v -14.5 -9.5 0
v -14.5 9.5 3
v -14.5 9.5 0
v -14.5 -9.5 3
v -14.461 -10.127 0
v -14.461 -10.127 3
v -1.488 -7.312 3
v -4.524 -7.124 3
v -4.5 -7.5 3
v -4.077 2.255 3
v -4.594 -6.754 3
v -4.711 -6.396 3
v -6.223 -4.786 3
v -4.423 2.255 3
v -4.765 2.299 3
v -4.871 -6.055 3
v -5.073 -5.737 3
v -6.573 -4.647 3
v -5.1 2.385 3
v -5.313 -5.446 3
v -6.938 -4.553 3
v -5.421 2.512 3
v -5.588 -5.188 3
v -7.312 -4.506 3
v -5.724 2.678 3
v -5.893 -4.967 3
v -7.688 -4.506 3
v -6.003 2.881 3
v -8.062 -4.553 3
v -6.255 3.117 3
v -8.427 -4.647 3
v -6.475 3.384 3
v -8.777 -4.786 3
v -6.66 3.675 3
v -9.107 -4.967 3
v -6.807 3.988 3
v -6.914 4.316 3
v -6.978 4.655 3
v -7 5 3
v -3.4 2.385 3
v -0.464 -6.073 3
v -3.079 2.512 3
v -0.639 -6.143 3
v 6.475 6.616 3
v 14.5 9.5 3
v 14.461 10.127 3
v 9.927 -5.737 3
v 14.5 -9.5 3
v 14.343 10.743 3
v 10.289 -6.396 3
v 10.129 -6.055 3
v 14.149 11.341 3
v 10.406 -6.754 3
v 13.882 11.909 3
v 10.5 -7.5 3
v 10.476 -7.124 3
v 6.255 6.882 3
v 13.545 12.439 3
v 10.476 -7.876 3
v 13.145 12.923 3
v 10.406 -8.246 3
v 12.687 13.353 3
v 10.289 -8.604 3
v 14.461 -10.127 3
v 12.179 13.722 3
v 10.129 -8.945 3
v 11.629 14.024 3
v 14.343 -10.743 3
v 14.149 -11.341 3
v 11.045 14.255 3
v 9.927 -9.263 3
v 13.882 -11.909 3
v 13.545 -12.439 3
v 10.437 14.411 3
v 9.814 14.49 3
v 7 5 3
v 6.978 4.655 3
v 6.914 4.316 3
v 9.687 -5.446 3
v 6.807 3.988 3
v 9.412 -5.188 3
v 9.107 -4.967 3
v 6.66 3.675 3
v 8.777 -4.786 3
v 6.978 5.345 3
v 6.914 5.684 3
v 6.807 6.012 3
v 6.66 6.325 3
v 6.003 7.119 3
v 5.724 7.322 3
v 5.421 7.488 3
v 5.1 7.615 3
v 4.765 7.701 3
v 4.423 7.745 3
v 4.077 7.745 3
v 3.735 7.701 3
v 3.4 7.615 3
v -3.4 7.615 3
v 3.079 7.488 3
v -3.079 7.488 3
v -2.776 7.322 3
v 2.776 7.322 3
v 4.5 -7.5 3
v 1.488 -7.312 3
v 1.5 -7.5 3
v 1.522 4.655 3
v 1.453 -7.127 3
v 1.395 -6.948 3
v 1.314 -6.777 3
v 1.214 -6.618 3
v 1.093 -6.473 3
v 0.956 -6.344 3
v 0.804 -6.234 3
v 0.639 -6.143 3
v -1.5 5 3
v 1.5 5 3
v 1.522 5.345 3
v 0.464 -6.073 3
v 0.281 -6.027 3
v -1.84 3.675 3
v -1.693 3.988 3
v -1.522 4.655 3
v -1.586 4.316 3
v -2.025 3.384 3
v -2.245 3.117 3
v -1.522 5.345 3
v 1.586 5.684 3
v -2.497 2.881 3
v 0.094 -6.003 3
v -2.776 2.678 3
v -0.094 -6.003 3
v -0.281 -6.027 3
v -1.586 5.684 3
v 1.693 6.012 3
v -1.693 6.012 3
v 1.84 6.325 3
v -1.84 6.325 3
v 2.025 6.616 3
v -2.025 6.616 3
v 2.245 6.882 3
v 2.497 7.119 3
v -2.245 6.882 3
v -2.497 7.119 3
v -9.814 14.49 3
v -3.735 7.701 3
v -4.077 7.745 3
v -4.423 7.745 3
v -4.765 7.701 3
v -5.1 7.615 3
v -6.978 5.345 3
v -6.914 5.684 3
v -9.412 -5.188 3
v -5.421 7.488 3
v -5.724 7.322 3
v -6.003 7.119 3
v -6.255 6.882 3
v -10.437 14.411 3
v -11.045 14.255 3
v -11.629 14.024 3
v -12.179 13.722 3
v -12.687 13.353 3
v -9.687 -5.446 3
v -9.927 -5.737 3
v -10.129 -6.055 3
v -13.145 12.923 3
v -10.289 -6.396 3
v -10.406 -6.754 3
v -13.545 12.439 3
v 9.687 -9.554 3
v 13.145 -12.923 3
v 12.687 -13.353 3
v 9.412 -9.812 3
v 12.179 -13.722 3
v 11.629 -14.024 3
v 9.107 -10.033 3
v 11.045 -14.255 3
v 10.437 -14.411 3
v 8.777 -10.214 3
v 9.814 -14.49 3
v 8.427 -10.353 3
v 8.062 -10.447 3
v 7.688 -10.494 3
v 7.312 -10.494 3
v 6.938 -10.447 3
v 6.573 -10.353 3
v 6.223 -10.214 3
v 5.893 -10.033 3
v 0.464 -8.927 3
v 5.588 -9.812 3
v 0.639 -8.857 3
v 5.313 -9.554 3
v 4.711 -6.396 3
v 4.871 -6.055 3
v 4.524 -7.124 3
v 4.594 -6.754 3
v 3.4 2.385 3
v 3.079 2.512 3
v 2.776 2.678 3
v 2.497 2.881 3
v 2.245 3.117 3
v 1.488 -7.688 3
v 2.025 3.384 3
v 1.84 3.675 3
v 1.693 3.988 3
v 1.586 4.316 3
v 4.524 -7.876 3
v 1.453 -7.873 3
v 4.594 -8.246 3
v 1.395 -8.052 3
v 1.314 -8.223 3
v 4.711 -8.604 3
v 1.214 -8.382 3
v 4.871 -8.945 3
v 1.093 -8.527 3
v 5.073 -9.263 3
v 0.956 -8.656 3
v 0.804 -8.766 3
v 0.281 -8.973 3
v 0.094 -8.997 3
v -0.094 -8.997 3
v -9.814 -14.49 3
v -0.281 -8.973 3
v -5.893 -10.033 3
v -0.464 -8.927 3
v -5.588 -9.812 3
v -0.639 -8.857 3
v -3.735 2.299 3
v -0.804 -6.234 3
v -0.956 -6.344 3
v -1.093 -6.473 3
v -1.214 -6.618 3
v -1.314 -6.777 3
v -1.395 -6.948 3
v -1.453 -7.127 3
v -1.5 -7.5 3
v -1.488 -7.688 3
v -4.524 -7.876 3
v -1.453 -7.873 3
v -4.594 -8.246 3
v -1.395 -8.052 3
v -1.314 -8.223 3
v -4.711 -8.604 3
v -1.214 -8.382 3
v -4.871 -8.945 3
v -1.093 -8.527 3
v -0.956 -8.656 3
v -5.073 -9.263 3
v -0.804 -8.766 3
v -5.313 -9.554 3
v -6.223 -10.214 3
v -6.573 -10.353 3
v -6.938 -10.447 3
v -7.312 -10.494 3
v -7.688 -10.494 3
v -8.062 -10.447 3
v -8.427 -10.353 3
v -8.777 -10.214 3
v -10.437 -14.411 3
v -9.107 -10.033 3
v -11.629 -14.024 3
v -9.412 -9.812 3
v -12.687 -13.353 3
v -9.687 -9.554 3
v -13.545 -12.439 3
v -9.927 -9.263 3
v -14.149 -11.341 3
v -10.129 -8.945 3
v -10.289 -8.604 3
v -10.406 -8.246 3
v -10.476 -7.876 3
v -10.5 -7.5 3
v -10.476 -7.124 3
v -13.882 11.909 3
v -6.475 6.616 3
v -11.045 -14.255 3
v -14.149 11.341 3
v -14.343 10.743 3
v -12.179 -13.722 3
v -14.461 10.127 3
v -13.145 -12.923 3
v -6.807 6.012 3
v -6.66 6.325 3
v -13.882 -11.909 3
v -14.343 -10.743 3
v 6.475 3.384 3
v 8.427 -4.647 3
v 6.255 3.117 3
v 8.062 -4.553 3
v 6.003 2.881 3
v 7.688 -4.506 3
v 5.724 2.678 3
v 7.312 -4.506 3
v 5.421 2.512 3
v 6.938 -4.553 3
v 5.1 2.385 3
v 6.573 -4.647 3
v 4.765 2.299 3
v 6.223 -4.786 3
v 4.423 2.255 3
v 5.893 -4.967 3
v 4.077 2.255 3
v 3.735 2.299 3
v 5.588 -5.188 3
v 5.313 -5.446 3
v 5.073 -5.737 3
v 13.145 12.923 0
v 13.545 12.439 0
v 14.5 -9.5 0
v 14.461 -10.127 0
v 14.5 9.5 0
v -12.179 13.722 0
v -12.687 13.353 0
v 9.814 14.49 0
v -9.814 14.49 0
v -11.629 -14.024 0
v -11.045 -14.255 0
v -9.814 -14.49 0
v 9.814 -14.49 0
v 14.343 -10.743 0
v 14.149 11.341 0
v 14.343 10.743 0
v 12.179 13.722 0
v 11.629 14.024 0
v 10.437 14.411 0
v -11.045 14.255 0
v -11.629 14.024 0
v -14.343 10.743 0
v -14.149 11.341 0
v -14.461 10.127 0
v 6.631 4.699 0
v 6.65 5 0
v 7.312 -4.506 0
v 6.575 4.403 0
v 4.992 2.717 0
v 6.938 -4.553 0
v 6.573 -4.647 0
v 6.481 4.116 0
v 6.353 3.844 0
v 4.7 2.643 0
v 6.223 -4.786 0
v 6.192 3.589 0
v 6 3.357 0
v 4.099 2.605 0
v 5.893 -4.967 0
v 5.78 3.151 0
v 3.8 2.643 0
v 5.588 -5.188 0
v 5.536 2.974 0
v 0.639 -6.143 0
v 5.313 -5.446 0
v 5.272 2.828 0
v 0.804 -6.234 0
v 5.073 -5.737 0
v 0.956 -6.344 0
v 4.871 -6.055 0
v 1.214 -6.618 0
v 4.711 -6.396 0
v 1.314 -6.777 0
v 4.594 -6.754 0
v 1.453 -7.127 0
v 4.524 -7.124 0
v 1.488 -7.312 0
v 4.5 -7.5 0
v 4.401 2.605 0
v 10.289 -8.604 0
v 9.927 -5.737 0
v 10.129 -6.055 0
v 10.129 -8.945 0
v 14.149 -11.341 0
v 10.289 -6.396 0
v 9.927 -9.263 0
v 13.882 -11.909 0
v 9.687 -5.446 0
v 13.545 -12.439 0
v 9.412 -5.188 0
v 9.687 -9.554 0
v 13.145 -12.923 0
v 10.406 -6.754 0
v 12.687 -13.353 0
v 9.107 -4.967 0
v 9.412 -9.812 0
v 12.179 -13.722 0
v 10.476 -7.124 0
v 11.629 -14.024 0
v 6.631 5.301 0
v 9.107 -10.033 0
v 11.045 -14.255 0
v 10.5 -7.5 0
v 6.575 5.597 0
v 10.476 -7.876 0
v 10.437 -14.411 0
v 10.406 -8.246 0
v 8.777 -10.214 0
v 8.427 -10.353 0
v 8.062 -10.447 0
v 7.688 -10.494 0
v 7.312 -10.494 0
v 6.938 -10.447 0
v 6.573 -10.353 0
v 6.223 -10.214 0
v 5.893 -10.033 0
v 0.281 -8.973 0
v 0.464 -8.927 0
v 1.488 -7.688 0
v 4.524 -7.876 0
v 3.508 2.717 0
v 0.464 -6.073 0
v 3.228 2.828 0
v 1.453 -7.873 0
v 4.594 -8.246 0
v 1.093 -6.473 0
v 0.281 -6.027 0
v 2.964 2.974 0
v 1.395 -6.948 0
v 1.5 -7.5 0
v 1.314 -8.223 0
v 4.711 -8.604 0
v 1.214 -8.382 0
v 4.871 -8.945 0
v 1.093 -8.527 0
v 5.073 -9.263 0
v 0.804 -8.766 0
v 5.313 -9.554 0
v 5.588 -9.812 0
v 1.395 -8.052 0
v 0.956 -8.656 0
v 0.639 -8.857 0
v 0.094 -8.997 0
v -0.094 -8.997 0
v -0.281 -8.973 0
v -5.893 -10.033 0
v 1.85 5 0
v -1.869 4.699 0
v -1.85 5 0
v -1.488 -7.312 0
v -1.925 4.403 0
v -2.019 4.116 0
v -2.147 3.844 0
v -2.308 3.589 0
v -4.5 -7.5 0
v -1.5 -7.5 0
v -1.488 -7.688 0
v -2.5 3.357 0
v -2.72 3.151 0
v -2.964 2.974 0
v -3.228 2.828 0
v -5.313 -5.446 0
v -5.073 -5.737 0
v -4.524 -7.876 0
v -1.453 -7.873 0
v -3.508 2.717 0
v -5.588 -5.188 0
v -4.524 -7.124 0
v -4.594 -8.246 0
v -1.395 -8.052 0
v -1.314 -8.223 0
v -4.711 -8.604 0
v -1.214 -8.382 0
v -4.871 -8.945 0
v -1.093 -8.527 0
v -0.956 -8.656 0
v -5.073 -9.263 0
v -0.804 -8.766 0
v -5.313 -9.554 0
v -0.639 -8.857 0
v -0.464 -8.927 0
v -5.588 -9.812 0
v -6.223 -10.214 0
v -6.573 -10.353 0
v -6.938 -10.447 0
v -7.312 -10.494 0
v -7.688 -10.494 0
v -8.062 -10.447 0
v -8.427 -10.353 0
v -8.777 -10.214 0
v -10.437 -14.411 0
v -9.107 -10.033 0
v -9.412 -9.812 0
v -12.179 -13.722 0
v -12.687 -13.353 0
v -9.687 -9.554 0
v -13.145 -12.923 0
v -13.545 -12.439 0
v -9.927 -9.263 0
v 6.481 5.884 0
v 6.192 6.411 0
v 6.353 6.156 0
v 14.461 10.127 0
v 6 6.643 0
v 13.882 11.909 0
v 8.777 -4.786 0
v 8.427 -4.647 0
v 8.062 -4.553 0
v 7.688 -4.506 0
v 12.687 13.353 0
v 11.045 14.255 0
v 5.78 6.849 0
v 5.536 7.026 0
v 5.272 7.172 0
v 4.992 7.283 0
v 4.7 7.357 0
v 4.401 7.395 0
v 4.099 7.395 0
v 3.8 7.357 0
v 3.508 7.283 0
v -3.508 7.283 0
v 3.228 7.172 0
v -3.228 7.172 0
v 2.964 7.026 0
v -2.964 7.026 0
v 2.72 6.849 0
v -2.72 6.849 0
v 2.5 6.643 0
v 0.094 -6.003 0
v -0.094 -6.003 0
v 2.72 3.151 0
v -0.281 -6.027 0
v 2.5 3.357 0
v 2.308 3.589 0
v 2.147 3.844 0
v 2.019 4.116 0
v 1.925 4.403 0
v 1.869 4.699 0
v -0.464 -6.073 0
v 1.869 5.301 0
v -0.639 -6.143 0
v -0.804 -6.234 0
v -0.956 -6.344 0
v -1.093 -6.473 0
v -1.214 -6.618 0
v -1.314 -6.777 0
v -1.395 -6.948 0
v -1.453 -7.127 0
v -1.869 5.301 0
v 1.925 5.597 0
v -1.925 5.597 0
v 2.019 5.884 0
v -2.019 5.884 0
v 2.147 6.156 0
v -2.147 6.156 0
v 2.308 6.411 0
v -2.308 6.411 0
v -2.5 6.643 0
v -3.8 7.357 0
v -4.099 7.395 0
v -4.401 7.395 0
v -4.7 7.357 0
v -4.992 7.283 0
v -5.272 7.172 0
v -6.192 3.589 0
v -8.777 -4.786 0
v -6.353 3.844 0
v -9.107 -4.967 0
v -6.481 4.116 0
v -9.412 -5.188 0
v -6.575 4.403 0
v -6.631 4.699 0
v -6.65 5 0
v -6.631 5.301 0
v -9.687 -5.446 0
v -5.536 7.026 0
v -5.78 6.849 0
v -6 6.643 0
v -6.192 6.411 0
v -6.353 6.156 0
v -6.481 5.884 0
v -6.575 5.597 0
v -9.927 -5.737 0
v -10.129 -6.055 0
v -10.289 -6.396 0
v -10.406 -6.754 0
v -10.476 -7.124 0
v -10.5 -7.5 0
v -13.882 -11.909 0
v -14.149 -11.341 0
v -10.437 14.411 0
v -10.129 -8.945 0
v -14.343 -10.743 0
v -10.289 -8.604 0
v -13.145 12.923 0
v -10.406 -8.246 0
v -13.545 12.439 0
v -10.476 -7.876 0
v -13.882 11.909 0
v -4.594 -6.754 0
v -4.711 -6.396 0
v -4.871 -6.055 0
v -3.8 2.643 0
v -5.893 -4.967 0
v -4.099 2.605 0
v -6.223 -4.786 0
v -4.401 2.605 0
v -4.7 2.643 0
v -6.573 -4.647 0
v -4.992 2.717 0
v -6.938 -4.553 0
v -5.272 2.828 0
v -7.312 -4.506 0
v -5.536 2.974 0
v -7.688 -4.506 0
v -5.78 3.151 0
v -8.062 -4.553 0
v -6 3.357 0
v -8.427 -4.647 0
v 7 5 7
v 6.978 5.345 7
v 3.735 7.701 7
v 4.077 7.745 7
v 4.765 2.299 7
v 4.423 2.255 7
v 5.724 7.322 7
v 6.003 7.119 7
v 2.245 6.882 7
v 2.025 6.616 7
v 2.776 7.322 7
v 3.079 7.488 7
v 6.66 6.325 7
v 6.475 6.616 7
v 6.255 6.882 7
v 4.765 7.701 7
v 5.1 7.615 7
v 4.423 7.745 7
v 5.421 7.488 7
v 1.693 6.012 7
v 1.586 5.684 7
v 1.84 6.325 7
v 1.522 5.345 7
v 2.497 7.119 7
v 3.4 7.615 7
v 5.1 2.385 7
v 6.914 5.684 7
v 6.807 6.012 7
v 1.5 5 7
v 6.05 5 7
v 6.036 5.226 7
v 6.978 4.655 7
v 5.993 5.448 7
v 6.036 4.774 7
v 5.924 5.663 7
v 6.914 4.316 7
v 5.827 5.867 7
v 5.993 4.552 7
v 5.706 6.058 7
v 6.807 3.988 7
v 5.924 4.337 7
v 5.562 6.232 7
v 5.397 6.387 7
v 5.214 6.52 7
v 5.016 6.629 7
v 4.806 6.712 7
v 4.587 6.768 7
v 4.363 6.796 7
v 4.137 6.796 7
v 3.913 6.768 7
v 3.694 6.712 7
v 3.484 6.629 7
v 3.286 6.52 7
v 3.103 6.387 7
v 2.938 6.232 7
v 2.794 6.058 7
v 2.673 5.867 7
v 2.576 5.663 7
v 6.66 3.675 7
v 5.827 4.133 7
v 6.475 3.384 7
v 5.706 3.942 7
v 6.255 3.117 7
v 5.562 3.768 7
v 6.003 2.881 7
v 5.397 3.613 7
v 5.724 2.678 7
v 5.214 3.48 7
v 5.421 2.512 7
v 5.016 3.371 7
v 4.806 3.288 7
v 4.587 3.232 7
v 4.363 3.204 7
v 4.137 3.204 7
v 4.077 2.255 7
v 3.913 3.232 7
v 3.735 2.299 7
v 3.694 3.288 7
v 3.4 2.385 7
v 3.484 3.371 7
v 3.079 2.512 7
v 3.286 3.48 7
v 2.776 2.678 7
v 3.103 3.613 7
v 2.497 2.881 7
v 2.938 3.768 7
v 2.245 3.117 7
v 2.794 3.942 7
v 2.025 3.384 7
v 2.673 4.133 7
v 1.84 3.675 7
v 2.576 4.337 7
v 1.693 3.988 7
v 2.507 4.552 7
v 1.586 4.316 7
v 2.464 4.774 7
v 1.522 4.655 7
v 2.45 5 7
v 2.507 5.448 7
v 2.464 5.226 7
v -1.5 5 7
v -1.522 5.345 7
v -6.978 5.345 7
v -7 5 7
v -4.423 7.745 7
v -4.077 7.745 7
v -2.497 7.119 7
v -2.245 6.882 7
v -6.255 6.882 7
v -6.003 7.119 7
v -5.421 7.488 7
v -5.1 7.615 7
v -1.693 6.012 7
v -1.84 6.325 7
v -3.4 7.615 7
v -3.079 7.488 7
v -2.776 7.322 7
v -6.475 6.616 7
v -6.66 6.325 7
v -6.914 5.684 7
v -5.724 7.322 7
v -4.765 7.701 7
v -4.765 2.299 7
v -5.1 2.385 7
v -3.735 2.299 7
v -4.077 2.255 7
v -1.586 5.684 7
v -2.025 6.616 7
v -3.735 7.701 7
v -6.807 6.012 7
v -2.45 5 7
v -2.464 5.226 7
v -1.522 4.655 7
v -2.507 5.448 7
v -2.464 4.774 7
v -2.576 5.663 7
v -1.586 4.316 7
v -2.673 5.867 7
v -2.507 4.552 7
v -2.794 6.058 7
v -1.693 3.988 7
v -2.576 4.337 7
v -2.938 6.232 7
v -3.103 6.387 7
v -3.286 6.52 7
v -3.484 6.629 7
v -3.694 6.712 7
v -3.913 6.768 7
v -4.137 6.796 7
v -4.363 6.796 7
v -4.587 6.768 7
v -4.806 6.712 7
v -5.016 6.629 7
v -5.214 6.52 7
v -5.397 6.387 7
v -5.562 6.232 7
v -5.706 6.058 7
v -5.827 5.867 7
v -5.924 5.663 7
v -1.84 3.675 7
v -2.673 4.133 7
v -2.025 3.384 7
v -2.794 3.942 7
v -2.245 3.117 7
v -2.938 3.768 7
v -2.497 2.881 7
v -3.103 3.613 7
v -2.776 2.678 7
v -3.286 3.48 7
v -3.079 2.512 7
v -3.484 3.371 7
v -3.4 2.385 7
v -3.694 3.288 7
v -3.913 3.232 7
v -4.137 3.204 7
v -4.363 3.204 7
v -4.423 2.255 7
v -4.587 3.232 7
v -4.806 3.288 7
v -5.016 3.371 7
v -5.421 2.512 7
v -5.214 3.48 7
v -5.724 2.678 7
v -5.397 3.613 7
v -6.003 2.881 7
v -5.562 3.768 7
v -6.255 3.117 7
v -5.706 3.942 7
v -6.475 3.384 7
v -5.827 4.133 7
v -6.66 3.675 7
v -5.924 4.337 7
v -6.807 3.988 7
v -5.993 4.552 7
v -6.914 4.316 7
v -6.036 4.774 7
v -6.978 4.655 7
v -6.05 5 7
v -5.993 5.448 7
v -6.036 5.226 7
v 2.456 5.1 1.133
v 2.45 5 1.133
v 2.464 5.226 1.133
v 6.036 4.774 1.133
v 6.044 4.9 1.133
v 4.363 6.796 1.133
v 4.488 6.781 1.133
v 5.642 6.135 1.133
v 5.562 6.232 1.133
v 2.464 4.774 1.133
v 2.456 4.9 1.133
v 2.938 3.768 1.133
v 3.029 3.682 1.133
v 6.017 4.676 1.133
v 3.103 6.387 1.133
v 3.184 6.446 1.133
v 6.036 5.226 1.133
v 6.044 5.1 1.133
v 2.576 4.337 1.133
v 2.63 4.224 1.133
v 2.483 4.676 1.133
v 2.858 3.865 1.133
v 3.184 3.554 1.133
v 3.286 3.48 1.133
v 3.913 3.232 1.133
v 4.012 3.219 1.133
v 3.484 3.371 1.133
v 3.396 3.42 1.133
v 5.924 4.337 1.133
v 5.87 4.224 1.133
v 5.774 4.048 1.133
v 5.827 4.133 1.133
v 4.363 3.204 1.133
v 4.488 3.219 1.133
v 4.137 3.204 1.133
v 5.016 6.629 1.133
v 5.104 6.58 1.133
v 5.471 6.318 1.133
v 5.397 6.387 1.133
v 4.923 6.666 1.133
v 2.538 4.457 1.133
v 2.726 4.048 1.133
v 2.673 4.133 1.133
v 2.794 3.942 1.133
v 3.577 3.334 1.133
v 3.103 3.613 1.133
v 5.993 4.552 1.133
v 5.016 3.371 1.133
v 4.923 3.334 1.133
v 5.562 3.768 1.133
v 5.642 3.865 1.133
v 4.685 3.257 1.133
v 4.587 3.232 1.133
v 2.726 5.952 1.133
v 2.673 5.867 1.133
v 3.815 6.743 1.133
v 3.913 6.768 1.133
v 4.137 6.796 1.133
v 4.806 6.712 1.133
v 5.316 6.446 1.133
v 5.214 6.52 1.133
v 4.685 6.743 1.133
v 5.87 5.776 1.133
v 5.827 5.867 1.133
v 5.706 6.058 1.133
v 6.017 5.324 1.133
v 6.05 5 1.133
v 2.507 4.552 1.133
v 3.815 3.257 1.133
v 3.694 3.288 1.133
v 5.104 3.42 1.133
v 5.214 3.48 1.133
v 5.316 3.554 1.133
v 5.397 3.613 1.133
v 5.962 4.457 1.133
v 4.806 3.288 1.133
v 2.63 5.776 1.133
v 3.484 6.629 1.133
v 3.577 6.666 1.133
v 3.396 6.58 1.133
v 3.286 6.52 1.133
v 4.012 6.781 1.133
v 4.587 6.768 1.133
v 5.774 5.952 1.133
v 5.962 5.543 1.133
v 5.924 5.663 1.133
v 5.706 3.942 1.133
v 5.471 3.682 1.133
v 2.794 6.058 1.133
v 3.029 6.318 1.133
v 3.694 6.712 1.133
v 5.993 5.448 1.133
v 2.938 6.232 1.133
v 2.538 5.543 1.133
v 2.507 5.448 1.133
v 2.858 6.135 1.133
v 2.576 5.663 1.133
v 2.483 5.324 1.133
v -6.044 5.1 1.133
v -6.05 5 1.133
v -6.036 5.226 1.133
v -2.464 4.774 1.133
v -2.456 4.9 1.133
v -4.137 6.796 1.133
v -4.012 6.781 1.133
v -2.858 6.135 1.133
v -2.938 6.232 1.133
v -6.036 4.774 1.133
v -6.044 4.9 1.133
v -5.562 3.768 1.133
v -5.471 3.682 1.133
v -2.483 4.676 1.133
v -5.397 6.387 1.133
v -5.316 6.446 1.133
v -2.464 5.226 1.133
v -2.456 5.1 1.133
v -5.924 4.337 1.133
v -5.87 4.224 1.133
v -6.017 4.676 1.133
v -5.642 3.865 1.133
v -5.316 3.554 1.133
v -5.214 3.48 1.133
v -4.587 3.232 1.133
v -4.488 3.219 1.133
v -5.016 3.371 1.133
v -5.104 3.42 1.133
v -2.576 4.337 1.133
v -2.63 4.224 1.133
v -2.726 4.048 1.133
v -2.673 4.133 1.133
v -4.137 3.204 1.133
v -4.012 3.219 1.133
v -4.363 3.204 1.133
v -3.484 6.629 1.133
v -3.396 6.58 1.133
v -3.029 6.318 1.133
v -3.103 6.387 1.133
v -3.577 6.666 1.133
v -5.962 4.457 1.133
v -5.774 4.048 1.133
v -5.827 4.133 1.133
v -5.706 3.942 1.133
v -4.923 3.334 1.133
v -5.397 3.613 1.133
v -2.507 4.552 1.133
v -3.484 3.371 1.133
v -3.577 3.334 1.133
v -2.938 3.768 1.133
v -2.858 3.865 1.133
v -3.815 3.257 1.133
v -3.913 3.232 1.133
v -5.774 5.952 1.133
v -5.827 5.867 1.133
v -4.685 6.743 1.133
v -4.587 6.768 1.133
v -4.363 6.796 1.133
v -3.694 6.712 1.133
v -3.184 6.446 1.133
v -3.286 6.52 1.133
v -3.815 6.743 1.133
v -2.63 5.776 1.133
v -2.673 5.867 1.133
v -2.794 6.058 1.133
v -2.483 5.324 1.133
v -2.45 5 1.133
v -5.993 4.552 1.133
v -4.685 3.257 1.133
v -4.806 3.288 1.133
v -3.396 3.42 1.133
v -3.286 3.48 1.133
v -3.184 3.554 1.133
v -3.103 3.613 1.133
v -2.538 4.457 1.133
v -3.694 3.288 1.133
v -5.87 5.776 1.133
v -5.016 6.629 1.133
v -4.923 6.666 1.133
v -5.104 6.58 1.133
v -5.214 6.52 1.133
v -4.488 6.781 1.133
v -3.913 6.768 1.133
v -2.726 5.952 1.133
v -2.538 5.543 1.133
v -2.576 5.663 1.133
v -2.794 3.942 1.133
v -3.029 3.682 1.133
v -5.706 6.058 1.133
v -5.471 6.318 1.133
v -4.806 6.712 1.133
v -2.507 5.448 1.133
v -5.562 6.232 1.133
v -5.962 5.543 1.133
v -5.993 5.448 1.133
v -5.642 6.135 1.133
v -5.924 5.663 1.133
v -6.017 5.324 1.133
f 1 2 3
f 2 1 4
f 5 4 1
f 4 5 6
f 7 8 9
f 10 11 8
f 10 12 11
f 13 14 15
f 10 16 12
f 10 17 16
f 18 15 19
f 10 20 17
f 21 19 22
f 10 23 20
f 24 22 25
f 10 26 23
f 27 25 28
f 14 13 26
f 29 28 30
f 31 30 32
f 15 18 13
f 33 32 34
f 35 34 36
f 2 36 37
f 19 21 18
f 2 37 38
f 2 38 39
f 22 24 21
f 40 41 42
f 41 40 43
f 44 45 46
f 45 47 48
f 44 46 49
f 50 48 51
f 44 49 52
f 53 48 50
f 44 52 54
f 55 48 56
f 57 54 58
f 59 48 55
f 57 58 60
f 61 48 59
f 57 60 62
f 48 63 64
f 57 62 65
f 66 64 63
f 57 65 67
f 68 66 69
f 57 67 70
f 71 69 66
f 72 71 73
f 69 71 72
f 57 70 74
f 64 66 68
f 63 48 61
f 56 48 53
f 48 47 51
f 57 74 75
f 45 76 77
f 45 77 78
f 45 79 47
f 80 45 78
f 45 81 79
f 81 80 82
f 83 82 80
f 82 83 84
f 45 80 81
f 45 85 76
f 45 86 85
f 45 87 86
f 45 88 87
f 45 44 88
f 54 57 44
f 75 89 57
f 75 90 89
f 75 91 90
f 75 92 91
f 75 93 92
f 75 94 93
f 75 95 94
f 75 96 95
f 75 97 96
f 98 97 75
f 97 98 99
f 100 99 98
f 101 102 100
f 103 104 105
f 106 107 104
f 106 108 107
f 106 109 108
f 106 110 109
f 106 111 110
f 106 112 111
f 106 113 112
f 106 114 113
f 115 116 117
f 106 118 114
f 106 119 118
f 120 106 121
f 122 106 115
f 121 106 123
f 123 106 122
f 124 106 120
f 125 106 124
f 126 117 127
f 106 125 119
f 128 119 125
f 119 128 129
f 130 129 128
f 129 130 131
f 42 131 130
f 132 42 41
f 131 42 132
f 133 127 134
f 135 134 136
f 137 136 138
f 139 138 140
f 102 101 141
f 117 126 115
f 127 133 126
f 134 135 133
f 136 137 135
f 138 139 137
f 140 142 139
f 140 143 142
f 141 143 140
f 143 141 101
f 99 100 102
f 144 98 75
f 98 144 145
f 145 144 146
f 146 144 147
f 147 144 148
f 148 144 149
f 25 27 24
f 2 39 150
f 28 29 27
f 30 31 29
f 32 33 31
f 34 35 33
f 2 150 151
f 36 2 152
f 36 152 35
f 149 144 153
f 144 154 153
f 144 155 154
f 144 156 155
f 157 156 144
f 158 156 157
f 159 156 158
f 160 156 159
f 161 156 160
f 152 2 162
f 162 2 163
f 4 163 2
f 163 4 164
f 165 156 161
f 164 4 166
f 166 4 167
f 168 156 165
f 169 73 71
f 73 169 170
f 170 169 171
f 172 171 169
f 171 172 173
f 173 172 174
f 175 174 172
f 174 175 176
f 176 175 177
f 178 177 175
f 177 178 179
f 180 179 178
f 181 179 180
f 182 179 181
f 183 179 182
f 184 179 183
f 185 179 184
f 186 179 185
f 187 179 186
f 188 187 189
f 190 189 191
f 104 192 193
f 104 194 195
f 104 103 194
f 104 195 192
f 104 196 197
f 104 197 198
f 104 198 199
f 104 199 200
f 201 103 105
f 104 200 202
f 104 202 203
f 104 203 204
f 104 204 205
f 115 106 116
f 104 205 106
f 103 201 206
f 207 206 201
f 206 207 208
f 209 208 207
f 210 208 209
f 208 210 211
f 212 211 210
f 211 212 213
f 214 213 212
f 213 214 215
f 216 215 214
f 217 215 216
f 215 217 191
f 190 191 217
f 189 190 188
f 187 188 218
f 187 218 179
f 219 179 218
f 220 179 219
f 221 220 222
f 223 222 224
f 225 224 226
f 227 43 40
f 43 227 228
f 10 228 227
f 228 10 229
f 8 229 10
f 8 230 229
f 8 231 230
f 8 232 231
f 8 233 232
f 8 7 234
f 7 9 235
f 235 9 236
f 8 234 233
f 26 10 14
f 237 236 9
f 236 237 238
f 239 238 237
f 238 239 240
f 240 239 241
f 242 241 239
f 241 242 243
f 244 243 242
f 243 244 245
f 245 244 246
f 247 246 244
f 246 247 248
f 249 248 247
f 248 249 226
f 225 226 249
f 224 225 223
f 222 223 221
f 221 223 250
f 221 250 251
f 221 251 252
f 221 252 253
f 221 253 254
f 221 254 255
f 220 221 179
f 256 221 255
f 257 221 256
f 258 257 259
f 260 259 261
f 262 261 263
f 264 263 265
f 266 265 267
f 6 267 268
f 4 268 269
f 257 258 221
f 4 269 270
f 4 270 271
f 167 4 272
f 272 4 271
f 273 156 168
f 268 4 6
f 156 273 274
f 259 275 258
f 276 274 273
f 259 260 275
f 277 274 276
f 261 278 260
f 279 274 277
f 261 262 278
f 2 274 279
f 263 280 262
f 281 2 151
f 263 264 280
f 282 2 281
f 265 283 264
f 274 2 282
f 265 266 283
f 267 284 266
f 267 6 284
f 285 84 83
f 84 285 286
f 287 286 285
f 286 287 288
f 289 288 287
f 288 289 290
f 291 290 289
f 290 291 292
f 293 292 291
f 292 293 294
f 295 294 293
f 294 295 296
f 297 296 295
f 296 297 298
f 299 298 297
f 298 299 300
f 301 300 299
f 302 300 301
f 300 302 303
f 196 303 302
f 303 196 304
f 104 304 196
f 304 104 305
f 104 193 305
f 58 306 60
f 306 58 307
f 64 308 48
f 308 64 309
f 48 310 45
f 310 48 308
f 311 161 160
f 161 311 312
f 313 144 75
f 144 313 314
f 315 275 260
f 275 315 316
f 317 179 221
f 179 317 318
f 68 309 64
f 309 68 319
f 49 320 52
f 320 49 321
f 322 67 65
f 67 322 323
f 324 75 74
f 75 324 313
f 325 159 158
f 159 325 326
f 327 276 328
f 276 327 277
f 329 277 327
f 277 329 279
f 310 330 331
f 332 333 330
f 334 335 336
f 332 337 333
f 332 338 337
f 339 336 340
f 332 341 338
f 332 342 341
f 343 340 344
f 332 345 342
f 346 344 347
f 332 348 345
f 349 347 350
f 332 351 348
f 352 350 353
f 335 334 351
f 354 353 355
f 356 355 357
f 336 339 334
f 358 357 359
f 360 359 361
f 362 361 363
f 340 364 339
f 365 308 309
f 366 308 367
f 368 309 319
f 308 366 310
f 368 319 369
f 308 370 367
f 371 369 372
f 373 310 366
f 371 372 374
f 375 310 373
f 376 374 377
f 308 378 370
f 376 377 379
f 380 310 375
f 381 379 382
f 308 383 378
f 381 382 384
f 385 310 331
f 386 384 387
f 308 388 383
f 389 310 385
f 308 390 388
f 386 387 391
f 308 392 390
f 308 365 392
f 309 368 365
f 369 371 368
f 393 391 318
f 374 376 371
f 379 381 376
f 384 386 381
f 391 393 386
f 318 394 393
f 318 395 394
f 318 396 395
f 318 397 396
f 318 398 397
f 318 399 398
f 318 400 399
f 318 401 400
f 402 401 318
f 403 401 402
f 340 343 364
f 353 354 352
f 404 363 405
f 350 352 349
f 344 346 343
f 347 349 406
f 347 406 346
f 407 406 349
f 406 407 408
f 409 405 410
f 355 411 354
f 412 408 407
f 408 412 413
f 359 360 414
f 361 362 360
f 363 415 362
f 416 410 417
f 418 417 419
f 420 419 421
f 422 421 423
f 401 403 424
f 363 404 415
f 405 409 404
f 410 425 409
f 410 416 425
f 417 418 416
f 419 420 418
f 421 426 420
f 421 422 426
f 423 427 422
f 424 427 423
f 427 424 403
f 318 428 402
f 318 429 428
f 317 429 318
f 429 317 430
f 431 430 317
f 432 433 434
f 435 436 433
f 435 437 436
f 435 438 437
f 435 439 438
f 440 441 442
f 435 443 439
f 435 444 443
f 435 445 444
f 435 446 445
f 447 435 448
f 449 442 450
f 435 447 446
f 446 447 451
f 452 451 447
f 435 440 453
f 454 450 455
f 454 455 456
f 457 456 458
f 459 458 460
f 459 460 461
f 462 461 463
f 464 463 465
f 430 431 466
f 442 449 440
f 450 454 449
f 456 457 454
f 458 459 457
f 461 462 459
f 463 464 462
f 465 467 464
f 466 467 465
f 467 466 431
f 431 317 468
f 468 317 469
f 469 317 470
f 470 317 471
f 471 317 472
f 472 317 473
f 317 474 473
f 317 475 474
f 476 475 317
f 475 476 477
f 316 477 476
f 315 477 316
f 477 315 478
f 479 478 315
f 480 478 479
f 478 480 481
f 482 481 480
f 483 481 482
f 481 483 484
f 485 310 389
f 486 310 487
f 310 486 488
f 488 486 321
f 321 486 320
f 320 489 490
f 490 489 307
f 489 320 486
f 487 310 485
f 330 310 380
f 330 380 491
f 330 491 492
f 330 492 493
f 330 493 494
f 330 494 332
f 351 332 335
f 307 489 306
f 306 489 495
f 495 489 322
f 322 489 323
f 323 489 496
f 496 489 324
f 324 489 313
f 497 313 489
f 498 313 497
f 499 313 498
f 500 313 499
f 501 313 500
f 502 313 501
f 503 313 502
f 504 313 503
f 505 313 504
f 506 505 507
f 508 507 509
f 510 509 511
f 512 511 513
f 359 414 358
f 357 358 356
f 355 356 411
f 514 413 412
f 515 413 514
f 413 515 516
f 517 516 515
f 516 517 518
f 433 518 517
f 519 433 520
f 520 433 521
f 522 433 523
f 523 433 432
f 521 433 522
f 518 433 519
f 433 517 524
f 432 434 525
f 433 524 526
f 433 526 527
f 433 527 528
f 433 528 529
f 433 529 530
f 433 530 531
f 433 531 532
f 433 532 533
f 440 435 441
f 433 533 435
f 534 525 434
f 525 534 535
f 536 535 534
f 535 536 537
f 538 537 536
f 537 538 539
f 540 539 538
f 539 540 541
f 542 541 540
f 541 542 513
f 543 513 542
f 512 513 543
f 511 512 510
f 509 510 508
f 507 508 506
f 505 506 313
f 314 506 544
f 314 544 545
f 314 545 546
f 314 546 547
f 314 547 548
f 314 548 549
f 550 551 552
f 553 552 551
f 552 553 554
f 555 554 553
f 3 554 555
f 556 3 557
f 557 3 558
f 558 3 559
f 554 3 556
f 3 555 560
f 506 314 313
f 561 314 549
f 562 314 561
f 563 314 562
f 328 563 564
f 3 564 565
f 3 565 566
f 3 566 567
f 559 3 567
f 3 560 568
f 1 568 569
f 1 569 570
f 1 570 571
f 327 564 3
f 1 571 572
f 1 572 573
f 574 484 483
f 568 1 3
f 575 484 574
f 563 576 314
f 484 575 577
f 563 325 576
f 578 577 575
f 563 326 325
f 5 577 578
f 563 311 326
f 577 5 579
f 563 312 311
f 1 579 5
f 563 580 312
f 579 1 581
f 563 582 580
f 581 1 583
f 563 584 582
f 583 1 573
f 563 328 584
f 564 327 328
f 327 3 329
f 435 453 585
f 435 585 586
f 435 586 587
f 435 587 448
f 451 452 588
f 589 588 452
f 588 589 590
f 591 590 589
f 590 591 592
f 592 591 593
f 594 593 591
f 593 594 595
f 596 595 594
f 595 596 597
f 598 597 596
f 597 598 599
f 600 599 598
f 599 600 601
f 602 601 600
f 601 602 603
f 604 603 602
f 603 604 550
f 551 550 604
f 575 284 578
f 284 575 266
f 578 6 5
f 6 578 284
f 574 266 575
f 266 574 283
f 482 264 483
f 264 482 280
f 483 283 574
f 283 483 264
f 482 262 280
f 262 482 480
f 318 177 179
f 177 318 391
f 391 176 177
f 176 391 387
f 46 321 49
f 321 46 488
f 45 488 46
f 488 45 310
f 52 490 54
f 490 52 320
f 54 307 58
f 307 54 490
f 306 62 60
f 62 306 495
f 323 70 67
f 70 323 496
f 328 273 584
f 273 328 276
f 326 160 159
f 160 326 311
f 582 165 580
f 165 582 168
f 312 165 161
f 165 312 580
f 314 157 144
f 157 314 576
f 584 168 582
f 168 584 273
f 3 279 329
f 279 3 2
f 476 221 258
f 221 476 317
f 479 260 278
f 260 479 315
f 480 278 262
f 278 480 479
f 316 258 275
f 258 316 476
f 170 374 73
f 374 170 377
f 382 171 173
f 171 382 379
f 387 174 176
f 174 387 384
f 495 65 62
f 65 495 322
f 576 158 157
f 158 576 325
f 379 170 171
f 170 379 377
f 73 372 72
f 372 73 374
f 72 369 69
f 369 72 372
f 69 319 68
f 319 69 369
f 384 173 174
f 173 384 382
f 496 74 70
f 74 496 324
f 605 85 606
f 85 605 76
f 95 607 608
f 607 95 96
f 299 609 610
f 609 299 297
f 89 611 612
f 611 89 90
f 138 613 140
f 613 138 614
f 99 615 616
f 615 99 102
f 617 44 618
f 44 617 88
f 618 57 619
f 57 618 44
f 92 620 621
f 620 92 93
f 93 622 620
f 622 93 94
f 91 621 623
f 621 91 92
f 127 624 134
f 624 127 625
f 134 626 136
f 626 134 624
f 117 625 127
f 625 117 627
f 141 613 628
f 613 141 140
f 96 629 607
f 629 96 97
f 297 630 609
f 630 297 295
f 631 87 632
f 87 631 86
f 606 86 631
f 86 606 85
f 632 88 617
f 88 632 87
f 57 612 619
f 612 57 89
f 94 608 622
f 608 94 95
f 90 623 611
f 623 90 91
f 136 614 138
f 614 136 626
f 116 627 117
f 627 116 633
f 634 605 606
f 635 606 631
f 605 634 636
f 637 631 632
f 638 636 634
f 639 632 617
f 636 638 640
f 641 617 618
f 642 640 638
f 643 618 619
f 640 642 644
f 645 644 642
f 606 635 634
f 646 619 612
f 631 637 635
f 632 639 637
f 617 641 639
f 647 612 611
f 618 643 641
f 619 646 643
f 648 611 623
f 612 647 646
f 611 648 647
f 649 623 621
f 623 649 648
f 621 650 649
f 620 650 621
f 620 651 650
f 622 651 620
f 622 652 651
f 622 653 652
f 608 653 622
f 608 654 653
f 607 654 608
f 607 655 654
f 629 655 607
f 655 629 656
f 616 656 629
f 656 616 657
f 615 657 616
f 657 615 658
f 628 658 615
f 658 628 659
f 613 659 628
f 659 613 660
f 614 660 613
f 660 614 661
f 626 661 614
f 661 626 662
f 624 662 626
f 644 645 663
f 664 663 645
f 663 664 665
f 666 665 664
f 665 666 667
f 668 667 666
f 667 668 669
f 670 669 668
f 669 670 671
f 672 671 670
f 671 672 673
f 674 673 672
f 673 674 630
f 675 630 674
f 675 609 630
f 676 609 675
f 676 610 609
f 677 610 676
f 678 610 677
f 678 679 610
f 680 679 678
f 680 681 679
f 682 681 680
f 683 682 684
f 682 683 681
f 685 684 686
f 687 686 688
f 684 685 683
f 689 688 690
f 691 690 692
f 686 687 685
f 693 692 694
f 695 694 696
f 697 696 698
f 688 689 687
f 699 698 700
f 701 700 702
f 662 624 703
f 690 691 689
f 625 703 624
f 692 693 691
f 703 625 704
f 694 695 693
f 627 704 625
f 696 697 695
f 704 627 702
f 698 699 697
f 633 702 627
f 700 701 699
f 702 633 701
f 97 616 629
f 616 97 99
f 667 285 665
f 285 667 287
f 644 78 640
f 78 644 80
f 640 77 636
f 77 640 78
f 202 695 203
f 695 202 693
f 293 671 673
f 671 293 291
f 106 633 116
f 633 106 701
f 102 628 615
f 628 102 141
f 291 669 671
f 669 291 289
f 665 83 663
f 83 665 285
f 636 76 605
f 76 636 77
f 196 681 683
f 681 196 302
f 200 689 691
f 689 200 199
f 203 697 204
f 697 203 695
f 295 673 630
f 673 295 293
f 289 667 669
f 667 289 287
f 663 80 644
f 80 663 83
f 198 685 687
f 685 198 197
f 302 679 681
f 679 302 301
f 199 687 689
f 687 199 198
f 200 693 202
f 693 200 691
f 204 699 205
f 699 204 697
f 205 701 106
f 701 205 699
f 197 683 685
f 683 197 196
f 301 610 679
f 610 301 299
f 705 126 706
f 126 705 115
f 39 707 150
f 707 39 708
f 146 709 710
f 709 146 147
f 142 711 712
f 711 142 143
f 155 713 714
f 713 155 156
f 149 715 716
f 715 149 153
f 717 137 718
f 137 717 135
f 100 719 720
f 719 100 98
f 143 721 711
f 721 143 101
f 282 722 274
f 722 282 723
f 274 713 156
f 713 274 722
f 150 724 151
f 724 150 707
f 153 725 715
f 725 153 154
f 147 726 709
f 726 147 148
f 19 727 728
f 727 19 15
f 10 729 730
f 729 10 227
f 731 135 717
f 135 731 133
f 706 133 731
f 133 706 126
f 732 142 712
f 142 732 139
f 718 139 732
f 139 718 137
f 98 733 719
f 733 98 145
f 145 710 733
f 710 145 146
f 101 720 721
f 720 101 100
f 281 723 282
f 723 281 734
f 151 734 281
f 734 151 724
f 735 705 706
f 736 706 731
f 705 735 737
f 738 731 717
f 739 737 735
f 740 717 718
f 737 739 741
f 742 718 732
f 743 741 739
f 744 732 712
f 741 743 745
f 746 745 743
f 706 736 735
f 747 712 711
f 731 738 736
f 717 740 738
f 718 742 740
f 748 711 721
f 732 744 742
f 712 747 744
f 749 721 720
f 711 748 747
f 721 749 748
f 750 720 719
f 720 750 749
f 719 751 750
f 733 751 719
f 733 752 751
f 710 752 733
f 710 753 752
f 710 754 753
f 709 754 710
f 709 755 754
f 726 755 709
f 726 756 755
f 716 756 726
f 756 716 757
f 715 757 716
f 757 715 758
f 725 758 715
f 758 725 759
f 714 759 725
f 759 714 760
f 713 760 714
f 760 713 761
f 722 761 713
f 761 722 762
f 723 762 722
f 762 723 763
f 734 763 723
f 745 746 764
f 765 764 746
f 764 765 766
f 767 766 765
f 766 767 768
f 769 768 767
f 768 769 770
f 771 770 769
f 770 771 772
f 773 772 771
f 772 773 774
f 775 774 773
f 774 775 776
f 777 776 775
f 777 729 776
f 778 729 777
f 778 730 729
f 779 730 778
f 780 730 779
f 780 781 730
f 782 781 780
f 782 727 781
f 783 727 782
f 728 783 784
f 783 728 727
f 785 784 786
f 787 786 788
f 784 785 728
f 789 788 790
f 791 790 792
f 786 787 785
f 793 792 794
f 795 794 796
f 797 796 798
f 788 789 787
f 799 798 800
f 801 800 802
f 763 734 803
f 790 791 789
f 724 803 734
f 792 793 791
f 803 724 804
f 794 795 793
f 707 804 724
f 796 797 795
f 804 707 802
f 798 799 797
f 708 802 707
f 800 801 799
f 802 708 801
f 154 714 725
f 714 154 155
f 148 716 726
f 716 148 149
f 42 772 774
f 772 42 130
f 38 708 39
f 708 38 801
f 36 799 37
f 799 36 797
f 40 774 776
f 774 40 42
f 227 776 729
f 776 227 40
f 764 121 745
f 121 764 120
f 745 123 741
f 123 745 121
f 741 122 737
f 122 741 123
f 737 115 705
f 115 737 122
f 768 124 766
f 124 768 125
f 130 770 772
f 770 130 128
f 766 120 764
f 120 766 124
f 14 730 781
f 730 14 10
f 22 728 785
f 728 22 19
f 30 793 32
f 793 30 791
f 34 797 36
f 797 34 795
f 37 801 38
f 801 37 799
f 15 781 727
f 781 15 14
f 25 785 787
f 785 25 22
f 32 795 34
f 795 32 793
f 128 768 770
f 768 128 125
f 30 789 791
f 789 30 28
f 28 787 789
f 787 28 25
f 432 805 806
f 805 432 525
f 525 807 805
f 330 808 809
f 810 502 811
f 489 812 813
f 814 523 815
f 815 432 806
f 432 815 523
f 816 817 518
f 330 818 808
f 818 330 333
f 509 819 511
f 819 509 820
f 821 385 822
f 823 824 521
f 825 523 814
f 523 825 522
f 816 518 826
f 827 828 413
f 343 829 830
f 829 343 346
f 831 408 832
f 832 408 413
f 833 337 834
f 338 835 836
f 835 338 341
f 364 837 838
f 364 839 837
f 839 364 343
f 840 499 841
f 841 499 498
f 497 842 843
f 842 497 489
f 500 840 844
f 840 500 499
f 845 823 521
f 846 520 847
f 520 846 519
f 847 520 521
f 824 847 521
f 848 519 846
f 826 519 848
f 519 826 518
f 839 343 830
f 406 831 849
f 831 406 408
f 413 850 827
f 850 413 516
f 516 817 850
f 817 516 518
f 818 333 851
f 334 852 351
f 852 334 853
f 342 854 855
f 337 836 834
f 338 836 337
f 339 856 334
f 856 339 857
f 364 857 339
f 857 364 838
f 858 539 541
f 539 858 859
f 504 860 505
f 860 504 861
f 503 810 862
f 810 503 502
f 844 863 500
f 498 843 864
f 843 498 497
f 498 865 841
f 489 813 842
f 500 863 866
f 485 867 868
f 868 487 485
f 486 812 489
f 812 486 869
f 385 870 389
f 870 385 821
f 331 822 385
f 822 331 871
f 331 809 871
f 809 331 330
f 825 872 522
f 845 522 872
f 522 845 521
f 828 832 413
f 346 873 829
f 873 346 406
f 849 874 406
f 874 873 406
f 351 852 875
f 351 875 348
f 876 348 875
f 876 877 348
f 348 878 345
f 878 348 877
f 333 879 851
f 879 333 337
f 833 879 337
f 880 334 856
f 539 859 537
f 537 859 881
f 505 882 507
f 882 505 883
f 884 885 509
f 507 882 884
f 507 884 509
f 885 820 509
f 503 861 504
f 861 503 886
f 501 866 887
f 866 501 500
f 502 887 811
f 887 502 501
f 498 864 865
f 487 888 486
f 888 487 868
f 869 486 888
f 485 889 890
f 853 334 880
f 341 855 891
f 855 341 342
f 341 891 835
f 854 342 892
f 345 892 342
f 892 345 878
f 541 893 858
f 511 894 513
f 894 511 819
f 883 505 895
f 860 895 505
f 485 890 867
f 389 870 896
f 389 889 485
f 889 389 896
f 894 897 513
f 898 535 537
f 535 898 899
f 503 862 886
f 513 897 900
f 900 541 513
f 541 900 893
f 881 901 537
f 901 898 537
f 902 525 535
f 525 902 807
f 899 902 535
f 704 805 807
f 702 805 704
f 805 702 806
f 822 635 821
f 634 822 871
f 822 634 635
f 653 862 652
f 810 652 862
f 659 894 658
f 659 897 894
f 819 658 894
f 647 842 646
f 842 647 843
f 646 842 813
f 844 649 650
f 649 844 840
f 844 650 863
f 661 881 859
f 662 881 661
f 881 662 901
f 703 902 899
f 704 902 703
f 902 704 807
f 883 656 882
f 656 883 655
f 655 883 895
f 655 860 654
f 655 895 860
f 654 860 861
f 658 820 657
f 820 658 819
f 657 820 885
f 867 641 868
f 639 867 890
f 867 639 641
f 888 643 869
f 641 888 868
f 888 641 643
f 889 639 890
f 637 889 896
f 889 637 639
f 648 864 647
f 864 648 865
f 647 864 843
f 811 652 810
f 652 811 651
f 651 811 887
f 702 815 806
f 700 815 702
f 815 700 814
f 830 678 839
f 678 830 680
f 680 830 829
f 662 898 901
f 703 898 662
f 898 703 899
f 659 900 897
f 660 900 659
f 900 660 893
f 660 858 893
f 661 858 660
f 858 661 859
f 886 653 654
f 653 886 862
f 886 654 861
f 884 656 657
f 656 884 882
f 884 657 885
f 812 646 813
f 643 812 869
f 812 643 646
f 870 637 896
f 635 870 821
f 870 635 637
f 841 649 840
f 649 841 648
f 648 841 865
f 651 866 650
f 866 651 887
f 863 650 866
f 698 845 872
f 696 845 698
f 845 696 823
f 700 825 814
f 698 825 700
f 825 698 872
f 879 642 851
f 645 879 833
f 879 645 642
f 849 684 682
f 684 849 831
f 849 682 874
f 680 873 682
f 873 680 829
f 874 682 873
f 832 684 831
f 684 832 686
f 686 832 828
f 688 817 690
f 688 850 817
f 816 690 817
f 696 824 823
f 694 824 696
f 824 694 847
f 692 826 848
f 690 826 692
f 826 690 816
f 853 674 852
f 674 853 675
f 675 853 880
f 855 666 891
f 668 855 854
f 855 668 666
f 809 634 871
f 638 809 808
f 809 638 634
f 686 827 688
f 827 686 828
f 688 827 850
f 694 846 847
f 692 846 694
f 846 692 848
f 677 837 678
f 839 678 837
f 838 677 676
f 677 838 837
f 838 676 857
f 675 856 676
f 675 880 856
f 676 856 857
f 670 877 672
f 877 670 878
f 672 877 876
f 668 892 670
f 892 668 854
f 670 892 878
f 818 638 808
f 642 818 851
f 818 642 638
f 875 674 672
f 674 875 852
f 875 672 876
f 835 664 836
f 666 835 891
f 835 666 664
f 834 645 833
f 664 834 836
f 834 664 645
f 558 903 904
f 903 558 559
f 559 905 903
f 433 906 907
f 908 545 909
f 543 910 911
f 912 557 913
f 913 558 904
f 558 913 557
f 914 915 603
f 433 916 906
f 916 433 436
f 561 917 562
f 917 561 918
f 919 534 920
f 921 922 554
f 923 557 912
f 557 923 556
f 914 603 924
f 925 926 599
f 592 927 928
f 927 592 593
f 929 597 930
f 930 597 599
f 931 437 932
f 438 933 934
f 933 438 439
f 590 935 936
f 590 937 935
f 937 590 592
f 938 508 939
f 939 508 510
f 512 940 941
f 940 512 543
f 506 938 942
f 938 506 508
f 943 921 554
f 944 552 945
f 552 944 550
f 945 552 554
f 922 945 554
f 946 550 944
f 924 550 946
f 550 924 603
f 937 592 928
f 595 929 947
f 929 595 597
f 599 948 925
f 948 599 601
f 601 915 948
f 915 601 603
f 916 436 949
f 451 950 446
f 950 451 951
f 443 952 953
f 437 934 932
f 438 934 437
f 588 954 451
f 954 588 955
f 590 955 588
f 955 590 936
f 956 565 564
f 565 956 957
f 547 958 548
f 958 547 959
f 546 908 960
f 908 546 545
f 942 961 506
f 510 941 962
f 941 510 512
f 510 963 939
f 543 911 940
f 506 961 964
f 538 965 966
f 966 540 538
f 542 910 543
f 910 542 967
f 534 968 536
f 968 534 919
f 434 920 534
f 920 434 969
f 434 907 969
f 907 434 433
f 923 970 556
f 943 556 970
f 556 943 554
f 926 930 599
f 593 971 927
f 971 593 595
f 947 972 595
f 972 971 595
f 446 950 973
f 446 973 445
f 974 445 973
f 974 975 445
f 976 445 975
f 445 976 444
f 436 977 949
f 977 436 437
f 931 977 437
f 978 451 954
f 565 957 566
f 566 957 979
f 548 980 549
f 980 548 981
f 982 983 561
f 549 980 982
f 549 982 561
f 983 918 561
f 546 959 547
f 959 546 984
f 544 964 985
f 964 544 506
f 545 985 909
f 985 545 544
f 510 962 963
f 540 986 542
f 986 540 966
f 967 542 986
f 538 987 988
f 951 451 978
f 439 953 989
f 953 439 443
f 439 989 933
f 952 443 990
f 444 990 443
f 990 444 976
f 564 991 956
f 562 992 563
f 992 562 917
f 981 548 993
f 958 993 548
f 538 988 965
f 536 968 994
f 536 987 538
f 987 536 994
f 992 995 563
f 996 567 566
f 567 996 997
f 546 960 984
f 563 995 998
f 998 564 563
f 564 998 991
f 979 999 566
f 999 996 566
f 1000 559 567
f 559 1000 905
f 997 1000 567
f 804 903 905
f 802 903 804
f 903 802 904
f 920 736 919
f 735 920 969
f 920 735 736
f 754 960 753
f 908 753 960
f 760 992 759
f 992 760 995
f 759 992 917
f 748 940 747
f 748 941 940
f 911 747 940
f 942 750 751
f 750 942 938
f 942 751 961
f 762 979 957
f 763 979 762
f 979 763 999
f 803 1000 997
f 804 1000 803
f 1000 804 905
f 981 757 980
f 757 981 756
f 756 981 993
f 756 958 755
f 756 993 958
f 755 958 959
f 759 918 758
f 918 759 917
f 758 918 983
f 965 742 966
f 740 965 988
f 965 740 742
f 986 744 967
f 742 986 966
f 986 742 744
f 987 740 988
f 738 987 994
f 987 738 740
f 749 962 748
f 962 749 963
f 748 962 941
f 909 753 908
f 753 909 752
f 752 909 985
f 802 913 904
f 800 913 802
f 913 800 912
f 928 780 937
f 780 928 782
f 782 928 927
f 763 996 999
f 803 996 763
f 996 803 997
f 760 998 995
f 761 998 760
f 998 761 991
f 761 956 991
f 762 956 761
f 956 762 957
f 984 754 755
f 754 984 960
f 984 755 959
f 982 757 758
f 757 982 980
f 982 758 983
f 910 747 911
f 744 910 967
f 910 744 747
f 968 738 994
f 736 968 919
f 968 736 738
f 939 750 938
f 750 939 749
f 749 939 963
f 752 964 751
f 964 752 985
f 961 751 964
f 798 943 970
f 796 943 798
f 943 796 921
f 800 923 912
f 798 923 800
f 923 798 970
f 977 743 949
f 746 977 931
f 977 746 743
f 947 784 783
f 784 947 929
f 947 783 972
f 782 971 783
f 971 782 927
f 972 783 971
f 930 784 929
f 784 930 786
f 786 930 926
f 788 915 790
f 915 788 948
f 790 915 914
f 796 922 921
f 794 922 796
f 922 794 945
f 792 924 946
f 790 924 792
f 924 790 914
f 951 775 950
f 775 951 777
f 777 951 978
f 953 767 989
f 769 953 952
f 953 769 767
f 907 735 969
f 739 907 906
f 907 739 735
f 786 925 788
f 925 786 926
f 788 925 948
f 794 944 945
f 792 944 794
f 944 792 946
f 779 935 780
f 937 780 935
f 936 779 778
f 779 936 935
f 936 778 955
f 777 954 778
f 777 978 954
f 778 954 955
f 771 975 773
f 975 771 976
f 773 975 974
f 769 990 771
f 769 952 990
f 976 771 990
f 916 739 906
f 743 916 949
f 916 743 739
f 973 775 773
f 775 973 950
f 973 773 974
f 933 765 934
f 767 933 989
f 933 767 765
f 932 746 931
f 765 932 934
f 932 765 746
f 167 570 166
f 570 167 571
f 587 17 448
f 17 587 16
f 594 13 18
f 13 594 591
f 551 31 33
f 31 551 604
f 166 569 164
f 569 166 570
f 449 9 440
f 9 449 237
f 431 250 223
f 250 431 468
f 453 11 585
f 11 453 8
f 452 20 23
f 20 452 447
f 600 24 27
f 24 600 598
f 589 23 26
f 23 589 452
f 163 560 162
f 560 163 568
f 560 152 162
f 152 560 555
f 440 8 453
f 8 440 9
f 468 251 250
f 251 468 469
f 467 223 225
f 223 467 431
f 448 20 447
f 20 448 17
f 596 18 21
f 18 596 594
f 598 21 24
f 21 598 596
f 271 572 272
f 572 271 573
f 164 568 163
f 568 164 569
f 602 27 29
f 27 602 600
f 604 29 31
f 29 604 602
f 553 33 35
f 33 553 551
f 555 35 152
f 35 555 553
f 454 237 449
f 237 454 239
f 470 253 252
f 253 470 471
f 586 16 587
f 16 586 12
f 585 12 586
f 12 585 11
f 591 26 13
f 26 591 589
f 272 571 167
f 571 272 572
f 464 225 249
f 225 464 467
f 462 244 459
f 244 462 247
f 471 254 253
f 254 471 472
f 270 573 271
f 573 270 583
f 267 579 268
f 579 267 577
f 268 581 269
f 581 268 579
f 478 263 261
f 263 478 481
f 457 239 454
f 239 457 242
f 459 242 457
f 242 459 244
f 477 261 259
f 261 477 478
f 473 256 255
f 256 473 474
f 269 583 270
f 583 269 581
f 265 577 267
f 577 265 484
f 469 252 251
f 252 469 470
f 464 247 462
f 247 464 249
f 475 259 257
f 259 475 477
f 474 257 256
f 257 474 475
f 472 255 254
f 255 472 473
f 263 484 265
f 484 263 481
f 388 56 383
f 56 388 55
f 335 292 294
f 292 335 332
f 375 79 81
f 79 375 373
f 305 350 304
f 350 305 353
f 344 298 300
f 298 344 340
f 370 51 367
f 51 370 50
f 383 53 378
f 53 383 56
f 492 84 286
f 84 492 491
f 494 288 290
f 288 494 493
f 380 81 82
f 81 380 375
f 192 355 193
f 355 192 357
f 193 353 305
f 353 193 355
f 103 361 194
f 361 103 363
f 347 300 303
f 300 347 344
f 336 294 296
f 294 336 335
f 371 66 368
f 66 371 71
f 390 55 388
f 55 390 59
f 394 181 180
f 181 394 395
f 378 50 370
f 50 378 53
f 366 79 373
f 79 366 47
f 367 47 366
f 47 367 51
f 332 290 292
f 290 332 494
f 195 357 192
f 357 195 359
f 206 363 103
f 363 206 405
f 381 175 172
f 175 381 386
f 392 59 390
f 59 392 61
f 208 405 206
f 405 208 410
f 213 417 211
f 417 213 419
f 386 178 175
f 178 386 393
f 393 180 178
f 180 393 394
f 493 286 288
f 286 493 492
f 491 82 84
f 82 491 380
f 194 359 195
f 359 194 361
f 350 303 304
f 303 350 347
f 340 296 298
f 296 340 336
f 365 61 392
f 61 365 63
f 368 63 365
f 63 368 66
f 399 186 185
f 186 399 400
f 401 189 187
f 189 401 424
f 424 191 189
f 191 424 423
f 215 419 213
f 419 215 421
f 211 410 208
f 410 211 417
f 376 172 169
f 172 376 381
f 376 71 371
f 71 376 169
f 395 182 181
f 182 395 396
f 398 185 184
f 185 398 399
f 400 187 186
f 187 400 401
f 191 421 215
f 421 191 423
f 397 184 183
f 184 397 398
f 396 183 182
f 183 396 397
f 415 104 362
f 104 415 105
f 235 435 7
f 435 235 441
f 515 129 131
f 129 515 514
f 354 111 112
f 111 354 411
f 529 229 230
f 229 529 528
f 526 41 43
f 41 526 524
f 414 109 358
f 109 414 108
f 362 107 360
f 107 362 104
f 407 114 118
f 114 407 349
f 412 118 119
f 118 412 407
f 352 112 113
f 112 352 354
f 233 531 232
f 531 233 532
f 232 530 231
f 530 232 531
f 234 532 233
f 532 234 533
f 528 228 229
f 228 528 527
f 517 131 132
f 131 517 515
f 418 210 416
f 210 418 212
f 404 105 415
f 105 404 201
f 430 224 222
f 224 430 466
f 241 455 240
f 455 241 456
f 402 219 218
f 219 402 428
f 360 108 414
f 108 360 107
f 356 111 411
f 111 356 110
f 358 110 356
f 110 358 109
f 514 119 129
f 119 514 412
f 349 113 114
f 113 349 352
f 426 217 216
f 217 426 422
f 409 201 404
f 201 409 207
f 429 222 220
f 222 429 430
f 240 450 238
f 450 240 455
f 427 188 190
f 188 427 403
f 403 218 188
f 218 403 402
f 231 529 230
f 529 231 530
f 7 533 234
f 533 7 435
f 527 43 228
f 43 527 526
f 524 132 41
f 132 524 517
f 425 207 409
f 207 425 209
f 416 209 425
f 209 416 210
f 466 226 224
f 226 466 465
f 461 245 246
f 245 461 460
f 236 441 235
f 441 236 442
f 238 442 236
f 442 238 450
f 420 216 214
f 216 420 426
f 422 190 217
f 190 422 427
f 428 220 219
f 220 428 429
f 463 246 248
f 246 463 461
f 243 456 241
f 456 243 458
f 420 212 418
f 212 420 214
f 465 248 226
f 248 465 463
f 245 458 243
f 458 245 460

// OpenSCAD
$fn = 50;


difference() {
	union() {
		hull() {
			translate(v = [-9.5000000000, 9.5000000000, 0]) {
				cylinder(h = 3, r = 5);
			}
			translate(v = [9.5000000000, 9.5000000000, 0]) {
				cylinder(h = 3, r = 5);
			}
			translate(v = [-9.5000000000, -9.5000000000, 0]) {
				cylinder(h = 3, r = 5);
			}
			translate(v = [9.5000000000, -9.5000000000, 0]) {
				cylinder(h = 3, r = 5);
			}
		}
		translate(v = [4.2500000000, 5.0000000000, 0]) {
			cylinder(h = 7, r = 2.7500000000);
		}
		translate(v = [-4.2500000000, 5.0000000000, 0]) {
			cylinder(h = 7, r = 2.7500000000);
		}
	}
	union() {
		translate(v = [4.2500000000, 5.0000000000, 0]) {
			rotate(a = [0, 180, 0]) {
				difference() {
					union() {
						translate(v = [0, 0, -1.7000000000]) {
							cylinder(h = 1.7000000000, r1 = 1.5000000000, r2 = 2.4000000000);
						}
						translate(v = [0, 0, -7.0000000000]) {
							cylinder(h = 7, r = 1.5000000000);
						}
						translate(v = [0, 0, -7.0000000000]) {
							cylinder(h = 7, r = 1.8000000000);
						}
						translate(v = [0, 0, -7.0000000000]) {
							cylinder(h = 7, r = 1.5000000000);
						}
					}
					union();
				}
			}
		}
		translate(v = [-4.2500000000, 5.0000000000, 0]) {
			rotate(a = [0, 180, 0]) {
				difference() {
					union() {
						translate(v = [0, 0, -1.7000000000]) {
							cylinder(h = 1.7000000000, r1 = 1.5000000000, r2 = 2.4000000000);
						}
						translate(v = [0, 0, -7.0000000000]) {
							cylinder(h = 7, r = 1.5000000000);
						}
						translate(v = [0, 0, -7.0000000000]) {
							cylinder(h = 7, r = 1.8000000000);
						}
						translate(v = [0, 0, -7.0000000000]) {
							cylinder(h = 7, r = 1.5000000000);
						}
					}
					union();
				}
			}
		}
		translate(v = [-7.5000000000, -7.5000000000, -100.0000000000]) {
			cylinder(h = 200, r = 3.0000000000);
		}
		translate(v = [7.5000000000, -7.5000000000, -100.0000000000]) {
			cylinder(h = 200, r = 3.0000000000);
		}
		translate(v = [-7.5000000000, -7.5000000000, -100.0000000000]) {
			cylinder(h = 200, r = 1.5000000000);
		}
		translate(v = [0.0000000000, -7.5000000000, -100.0000000000]) {
			cylinder(h = 200, r = 1.5000000000);
		}
		translate(v = [7.5000000000, -7.5000000000, -100.0000000000]) {
			cylinder(h = 200, r = 1.5000000000);
		}
		translate(v = [-7.5000000000, -7.5000000000, -100.0000000000]) {
			cylinder(h = 200, r = 1.5000000000);
		}
		translate(v = [0.0000000000, -7.5000000000, -100.0000000000]) {
			cylinder(h = 200, r = 1.5000000000);
		}
		translate(v = [7.5000000000, -7.5000000000, -100.0000000000]) {
			cylinder(h = 200, r = 1.5000000000);
		}
		translate(v = [-7.5000000000, -7.5000000000, -100.0000000000]) {
			cylinder(h = 200, r = 1.5000000000);
		}
		translate(v = [0.0000000000, -7.5000000000, -100.0000000000]) {
			cylinder(h = 200, r = 1.5000000000);
		}
		translate(v = [7.5000000000, -7.5000000000, -100.0000000000]) {
			cylinder(h = 200, r = 1.5000000000);
		}
		translate(v = [4.2500000000, 5.0000000000, -100.0000000000]) {
			cylinder(h = 200, r = 1.5000000000);
		}
		translate(v = [-4.2500000000, 5.0000000000, -100.0000000000]) {
			cylinder(h = 200, r = 1.5000000000);
		}
	}
}
